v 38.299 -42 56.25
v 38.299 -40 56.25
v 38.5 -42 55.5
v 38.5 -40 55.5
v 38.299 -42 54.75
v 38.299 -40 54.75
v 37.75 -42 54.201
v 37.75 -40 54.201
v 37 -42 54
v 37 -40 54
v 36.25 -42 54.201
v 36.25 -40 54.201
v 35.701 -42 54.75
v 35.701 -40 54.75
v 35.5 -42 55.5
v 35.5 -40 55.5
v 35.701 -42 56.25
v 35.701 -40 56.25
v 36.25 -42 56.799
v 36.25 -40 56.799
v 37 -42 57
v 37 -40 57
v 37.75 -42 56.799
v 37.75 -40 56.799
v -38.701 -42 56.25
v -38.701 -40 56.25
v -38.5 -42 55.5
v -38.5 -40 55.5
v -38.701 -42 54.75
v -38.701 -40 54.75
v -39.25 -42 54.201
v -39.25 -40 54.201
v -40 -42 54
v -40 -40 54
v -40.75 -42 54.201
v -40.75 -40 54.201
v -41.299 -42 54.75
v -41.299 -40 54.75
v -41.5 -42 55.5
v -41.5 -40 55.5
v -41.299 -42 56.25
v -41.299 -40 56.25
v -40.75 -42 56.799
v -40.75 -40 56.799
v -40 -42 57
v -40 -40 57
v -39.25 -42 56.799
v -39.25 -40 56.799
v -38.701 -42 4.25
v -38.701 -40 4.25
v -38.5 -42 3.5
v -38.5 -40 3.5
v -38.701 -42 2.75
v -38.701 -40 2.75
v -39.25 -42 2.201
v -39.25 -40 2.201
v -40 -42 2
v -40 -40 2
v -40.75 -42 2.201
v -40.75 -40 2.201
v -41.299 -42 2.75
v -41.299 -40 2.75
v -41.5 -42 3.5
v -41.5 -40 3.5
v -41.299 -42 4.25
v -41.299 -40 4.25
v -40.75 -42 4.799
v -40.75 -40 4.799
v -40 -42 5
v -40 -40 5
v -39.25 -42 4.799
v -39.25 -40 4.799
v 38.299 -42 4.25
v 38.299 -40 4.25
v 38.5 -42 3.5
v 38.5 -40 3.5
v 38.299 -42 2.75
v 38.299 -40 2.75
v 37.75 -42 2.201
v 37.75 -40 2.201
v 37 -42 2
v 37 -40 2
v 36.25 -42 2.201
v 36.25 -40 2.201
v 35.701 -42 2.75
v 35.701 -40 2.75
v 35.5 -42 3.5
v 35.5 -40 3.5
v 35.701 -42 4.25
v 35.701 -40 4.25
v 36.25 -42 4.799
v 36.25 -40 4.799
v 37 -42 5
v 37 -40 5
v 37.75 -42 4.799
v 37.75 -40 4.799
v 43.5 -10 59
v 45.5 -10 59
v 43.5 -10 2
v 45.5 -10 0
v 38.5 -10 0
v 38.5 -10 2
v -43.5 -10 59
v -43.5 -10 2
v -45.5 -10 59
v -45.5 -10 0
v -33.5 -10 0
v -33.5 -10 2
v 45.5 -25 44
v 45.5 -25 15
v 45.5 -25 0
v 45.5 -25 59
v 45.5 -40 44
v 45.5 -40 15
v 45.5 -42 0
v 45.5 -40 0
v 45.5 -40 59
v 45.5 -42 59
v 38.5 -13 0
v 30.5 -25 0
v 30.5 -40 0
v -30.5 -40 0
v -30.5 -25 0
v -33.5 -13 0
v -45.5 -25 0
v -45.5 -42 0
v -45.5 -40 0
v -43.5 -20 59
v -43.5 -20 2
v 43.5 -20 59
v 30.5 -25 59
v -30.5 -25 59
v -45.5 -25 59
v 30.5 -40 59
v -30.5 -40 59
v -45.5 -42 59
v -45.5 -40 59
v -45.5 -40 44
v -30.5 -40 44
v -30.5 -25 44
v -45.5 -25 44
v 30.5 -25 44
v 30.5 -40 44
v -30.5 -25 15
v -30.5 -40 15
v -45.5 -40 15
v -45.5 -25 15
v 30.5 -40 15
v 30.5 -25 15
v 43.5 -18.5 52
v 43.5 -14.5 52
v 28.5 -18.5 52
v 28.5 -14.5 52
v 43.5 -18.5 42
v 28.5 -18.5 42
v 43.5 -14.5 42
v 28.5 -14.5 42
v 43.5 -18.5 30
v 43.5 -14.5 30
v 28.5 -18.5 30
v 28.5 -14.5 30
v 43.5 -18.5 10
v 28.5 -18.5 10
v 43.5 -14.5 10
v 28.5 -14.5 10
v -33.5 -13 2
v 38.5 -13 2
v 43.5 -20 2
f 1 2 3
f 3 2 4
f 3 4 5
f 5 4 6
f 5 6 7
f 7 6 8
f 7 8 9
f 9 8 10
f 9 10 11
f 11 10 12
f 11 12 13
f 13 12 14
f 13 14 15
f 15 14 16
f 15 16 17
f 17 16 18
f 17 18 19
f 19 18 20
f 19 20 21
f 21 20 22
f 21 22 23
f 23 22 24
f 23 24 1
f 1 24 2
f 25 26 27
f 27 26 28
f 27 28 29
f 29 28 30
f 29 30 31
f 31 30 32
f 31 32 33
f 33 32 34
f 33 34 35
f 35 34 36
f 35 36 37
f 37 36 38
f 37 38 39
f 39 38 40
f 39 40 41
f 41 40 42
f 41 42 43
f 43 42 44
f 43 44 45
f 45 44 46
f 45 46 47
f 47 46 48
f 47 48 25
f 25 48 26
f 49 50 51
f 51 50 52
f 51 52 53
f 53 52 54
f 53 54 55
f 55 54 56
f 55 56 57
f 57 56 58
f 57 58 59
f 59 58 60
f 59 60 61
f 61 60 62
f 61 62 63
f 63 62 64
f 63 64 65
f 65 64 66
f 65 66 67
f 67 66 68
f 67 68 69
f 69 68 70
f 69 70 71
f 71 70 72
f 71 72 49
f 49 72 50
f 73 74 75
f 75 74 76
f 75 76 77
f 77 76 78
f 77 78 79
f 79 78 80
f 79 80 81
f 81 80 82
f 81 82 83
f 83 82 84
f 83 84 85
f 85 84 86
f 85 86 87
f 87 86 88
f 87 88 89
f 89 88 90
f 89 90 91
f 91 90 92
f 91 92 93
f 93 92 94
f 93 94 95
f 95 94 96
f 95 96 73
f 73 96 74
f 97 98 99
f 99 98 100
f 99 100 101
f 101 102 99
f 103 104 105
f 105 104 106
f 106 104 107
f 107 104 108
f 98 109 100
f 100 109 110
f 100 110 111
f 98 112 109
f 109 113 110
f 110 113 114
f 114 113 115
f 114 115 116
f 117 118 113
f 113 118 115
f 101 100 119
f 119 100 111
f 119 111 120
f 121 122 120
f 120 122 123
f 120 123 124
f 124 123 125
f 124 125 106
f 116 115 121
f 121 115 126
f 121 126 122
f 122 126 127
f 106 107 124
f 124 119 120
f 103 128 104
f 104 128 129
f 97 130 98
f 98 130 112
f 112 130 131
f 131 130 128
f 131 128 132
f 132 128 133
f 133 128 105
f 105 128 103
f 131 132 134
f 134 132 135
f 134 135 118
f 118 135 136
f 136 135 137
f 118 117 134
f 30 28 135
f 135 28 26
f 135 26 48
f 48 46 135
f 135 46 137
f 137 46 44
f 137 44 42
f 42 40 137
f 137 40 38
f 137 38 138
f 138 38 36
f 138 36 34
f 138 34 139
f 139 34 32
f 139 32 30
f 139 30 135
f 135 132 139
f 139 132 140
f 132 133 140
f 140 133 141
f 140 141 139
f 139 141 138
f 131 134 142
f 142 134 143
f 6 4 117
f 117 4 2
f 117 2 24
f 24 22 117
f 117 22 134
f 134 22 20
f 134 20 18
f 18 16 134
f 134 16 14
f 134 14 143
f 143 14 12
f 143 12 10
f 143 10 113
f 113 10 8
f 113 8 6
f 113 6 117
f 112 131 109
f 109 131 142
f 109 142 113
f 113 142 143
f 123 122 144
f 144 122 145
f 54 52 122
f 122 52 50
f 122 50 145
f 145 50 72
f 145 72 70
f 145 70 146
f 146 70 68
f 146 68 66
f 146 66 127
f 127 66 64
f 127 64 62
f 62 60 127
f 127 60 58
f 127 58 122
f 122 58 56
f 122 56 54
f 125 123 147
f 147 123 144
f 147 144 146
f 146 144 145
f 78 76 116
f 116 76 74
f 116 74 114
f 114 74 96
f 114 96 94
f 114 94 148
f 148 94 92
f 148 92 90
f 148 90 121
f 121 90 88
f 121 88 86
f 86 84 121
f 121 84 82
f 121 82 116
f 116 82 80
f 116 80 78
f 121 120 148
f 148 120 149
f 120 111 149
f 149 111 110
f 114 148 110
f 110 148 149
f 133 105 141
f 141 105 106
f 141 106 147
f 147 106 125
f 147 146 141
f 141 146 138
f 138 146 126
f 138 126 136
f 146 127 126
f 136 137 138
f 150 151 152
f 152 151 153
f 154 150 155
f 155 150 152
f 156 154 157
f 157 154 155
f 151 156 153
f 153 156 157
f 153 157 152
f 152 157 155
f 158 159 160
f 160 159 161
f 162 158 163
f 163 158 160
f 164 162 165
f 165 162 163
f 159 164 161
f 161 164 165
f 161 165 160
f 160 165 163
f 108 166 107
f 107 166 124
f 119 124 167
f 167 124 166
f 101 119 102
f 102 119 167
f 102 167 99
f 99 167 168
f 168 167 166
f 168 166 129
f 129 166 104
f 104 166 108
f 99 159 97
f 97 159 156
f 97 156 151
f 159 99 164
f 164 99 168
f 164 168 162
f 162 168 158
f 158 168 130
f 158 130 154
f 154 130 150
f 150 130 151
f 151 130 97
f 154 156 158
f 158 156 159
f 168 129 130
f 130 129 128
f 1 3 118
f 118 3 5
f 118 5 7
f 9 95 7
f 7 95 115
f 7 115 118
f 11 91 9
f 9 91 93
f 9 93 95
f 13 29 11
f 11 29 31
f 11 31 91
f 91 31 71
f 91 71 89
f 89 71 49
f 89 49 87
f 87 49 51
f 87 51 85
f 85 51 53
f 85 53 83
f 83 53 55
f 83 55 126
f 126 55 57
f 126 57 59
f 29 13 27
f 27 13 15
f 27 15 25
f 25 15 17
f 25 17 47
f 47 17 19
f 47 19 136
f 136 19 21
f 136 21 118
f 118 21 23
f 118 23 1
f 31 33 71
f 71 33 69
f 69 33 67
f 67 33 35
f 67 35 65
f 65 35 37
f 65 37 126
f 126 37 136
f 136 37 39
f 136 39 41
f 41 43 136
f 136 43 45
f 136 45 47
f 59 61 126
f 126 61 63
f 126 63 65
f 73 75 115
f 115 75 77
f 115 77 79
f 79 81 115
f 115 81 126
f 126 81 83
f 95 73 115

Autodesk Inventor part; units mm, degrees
ref_plane "YZ Plane" through (0, 0, 0) normal (1, 0, 0) x (0, 1, 0)
ref_plane "XZ Plane" through (0, 0, 0) normal (0, 1, 0) x (-1, 0, 0)
ref_plane "XY Plane" through (0, 0, 0) normal (0, 0, 1) x (1, 0, 0)
sketch "スケッチ1" plane through (0, 0, 0) normal (0, 0, 1) x (1, 0, 0)
  line L0 (-45.5, -42) -> (45.5, -42)
  line L1 (45.5, -42) -> (45.5, 22)
  line L2 (45.5, 22) -> (-45.5, 22)
  line L3 (-45.5, 22) -> (-45.5, -42)
  line L4 (-45.5, 0) -> (0, 0)
  line L5 (0, 0) -> (45.5, 0)
  dimension "d0" = 64
  dimension "d1" = 91
  dimension "d20" = 42
extrude "外枠2" add sketch "スケッチ1" along normal blind 59
sketch "スケッチ２" plane through (0, 0, 0) normal (0, 0, -1) x (1, 0, 0)
  line L0 (43.5, -20) -> (-43.5, -20)
  line L1 (-43.5, -20) -> (-43.5, 20)
  line L2 (-43.5, 20) -> (43.5, 20)
  line L3 (43.5, 20) -> (43.5, -20)
  line L4 (43.5, -20) -> (-43.5, 20) construction
  line L5 (-43.5, -20) -> (43.5, 20) construction
  point P0 (0, 0)
  dimension "d4" = 40
  dimension "d5" = 87
extrude "本体" cut sketch "スケッチ２" against normal blind 59
sketch "スケッチ4" plane through (-45.5, 22, 0) normal (0, 1, 0) x (1, 0, 0)
  line L0 (0, -59) -> (91, -59) projected
  line L1 (0, 0) -> (91, 0) projected
  line L2 (91, -59) -> (0, -59)
  line L3 (0, -59) -> (0, 0)
  line L4 (0, 0) -> (91, 0)
  line L5 (91, 0) -> (91, -59)
  point P0 (45.5, 0)
extrude "上くり抜き" cut sketch "スケッチ4" against normal blind 2
sketch "スケッチ5" plane through (0, 0, 0) normal (0, 0, -1) x (-1, 0, 0)
  line L0 (-43.5, -20) -> (-43.5, 20) projected
  line L1 (-43.5, 20) -> (-38.5, 20)
  line L2 (-38.5, 20) -> (-38.5, -13)
  line L3 (-38.5, -13) -> (33.5, -13)
  line L4 (33.5, -13) -> (33.5, 20)
  line L5 (43.5, -20) -> (43.5, 20) projected
  line L6 (33.5, 20) -> (43.5, 20)
  line L7 (43.5, 20) -> (43.5, -20)
  line L8 (43.5, -20) -> (-43.5, -20) projected
  line L9 (43.5, -20) -> (-43.5, -20)
  line L10 (-43.5, -20) -> (-43.5, 20)
  point P0 (0, 0)
  dimension "d15" = 5
  dimension "d16" = 10
  dimension "d17" = 33
extrude "側面" add sketch "スケッチ5" against normal blind 2
sketch "スケッチ6" plane through (43.5, -20, 59) normal (-1, 0, 0) x (0, 0, 1)
  line L0 (-49, 5.5) -> (-29, 5.5)
  line L1 (-29, 5.5) -> (-29, 1.5)
  line L2 (-29, 1.5) -> (-49, 1.5)
  line L3 (-49, 1.5) -> (-49, 5.5)
  line L4 (-17, 5.5) -> (-7, 5.5)
  line L5 (-7, 5.5) -> (-7, 1.5)
  line L6 (-7, 1.5) -> (-17, 1.5)
  line L7 (-17, 1.5) -> (-17, 5.5)
  line L8 (-57, 0) -> (0, 0) projected
  line L9 (0, 40) -> (0, 0) projected
  point P0 (-59, 20)
  point P1 (-57, 7)
  dimension "d21" = 1.5
  dimension "d22" = 8
  dimension "d23" = 20
  dimension "d24" = 10
  dimension "d25" = 7
  dimension "d26" = 4
  dimension "d27" = 4
extrude "支え" add sketch "スケッチ6" along normal blind 15
sketch "スケッチ9" plane through (0, 0, 0) normal (0, 0, -1) x (-1, 0, 0)
  line L0 (-45.5, -42) -> (-45.5, 20) projected
  line L1 (-45.5, -25) -> (-30.5, -25)
  line L2 (-30.5, -25) -> (-30.5, -40)
  line L3 (-30.5, -40) -> (-45.5, -40)
  line L4 (-45.5, -40) -> (-45.5, -25)
  line L5 (45.5, 20) -> (45.5, -42) projected
  line L6 (45.5, -25) -> (30.5, -25)
  line L7 (30.5, -25) -> (30.5, -40)
  line L8 (30.5, -40) -> (45.5, -40)
  line L9 (45.5, -40) -> (45.5, -25)
  line L10 (45.5, -42) -> (-45.5, -42) projected
  point P0 (0, 0)
  dimension "d38" = 2
  dimension "d39" = 15
  dimension "d40" = 15
  dimension "d41" = 15
extrude "ネジ穴1" cut sketch "スケッチ9" against normal blind 15
sketch "スケッチ10" plane through (0, 0, 59) normal (0, 0, 1) x (1, 0, 0)
  line L0 (-45.5, -25) -> (-45.5, -40) projected
  line L1 (-45.5, -25) -> (-30.5, -25)
  line L2 (-30.5, -25) -> (-30.5, -40)
  line L3 (-30.5, -40) -> (-45.5, -40)
  line L4 (-45.5, -40) -> (-45.5, -25)
  line L5 (45.5, -40) -> (45.5, -25) projected
  line L6 (45.5, -25) -> (30.5, -25)
  line L7 (30.5, -25) -> (30.5, -40)
  line L8 (30.5, -40) -> (45.5, -40)
  line L9 (45.5, -40) -> (45.5, -25)
  line L10 (-45.5, -42) -> (45.5, -42) projected
  point P0 (0, 0)
  dimension "d44" = 15
  dimension "d45" = 2
  dimension "d46" = 2
  dimension "d47" = 15
  dimension "d48" = 15
  dimension "d49" = 15
extrude "ネジ穴2" cut sketch "スケッチ10" against normal blind 15
sketch "スケッチ15" plane through (-45.5, 20, 0) normal (0, 1, 0) x (1, 0, 0)
  line L0 (76, -59) -> (91, -59) projected
  line L1 (84, 0) -> (91, 0) projected
  line L2 (91, -59) -> (91, 0)
  line L3 (91, 0) -> (84, 0)
  line L4 (84, 0) -> (84, -2) projected
  line L5 (84, 0) -> (84, -2)
  line L6 (89, -2) -> (84, -2) projected
  line L7 (84, -2) -> (89, -2)
  line L8 (89, -2) -> (89, -59) projected
  line L9 (89, -2) -> (89, -59)
  line L10 (89, -59) -> (2, -59) projected
  line L11 (2, -2) -> (2, -59) projected
  line L12 (2, -59) -> (2, -2)
  line L13 (84, -2) -> (12, -2) projected
  line L14 (2, -2) -> (12, -2)
  line L15 (12, 0) -> (12, -2) projected
  line L16 (12, -2) -> (12, 0)
  line L17 (15, 0) -> (0, 0) projected
  line L18 (12, 0) -> (0, 0)
  line L19 (0, 0) -> (0, -59) projected
  line L20 (0, 0) -> (0, -59)
  line L21 (0, -59) -> (2, -59)
  point P0 (45.5, 0)
extrude "押し出し11" cut sketch "スケッチ15" against normal blind 30 contours L8 L6 L4 L1 L2 L0 | L21 L19 L17 L15 L14 L11
sketch "スケッチ17" plane through (-45.5, -42, 0) normal (0, -1, 0) x (1, 0, 0)
  line L0 (91, 59) -> (91, 44) projected
  line L1 (15, 0) -> (0, 0) projected
  line L2 (91, 0) -> (91, 59) projected
  line L3 (5.5, 3.5) -> (82.5, 3.5)
  line L4 (82.5, 3.5) -> (82.5, 55.5)
  line L5 (82.5, 55.5) -> (5.5, 55.5)
  line L6 (5.5, 55.5) -> (5.5, 3.5)
  line L7 (5.5, 3.5) -> (82.5, 55.5) construction
  line L8 (82.5, 3.5) -> (5.5, 55.5) construction
  point P0 (45.5, 0)
  point P1 (44, 29.5)
  dimension "d55" = 77
  dimension "d56" = 52
hole "穴1" at (-40, -42, 55.5) at (-40, -42, 3.5) at (37, -42, 55.5) at (37, -42, 3.5) direction (0, 1, 0) diameter 3 depth 2 tip angle 118
properties part number "ultra96_holder"
